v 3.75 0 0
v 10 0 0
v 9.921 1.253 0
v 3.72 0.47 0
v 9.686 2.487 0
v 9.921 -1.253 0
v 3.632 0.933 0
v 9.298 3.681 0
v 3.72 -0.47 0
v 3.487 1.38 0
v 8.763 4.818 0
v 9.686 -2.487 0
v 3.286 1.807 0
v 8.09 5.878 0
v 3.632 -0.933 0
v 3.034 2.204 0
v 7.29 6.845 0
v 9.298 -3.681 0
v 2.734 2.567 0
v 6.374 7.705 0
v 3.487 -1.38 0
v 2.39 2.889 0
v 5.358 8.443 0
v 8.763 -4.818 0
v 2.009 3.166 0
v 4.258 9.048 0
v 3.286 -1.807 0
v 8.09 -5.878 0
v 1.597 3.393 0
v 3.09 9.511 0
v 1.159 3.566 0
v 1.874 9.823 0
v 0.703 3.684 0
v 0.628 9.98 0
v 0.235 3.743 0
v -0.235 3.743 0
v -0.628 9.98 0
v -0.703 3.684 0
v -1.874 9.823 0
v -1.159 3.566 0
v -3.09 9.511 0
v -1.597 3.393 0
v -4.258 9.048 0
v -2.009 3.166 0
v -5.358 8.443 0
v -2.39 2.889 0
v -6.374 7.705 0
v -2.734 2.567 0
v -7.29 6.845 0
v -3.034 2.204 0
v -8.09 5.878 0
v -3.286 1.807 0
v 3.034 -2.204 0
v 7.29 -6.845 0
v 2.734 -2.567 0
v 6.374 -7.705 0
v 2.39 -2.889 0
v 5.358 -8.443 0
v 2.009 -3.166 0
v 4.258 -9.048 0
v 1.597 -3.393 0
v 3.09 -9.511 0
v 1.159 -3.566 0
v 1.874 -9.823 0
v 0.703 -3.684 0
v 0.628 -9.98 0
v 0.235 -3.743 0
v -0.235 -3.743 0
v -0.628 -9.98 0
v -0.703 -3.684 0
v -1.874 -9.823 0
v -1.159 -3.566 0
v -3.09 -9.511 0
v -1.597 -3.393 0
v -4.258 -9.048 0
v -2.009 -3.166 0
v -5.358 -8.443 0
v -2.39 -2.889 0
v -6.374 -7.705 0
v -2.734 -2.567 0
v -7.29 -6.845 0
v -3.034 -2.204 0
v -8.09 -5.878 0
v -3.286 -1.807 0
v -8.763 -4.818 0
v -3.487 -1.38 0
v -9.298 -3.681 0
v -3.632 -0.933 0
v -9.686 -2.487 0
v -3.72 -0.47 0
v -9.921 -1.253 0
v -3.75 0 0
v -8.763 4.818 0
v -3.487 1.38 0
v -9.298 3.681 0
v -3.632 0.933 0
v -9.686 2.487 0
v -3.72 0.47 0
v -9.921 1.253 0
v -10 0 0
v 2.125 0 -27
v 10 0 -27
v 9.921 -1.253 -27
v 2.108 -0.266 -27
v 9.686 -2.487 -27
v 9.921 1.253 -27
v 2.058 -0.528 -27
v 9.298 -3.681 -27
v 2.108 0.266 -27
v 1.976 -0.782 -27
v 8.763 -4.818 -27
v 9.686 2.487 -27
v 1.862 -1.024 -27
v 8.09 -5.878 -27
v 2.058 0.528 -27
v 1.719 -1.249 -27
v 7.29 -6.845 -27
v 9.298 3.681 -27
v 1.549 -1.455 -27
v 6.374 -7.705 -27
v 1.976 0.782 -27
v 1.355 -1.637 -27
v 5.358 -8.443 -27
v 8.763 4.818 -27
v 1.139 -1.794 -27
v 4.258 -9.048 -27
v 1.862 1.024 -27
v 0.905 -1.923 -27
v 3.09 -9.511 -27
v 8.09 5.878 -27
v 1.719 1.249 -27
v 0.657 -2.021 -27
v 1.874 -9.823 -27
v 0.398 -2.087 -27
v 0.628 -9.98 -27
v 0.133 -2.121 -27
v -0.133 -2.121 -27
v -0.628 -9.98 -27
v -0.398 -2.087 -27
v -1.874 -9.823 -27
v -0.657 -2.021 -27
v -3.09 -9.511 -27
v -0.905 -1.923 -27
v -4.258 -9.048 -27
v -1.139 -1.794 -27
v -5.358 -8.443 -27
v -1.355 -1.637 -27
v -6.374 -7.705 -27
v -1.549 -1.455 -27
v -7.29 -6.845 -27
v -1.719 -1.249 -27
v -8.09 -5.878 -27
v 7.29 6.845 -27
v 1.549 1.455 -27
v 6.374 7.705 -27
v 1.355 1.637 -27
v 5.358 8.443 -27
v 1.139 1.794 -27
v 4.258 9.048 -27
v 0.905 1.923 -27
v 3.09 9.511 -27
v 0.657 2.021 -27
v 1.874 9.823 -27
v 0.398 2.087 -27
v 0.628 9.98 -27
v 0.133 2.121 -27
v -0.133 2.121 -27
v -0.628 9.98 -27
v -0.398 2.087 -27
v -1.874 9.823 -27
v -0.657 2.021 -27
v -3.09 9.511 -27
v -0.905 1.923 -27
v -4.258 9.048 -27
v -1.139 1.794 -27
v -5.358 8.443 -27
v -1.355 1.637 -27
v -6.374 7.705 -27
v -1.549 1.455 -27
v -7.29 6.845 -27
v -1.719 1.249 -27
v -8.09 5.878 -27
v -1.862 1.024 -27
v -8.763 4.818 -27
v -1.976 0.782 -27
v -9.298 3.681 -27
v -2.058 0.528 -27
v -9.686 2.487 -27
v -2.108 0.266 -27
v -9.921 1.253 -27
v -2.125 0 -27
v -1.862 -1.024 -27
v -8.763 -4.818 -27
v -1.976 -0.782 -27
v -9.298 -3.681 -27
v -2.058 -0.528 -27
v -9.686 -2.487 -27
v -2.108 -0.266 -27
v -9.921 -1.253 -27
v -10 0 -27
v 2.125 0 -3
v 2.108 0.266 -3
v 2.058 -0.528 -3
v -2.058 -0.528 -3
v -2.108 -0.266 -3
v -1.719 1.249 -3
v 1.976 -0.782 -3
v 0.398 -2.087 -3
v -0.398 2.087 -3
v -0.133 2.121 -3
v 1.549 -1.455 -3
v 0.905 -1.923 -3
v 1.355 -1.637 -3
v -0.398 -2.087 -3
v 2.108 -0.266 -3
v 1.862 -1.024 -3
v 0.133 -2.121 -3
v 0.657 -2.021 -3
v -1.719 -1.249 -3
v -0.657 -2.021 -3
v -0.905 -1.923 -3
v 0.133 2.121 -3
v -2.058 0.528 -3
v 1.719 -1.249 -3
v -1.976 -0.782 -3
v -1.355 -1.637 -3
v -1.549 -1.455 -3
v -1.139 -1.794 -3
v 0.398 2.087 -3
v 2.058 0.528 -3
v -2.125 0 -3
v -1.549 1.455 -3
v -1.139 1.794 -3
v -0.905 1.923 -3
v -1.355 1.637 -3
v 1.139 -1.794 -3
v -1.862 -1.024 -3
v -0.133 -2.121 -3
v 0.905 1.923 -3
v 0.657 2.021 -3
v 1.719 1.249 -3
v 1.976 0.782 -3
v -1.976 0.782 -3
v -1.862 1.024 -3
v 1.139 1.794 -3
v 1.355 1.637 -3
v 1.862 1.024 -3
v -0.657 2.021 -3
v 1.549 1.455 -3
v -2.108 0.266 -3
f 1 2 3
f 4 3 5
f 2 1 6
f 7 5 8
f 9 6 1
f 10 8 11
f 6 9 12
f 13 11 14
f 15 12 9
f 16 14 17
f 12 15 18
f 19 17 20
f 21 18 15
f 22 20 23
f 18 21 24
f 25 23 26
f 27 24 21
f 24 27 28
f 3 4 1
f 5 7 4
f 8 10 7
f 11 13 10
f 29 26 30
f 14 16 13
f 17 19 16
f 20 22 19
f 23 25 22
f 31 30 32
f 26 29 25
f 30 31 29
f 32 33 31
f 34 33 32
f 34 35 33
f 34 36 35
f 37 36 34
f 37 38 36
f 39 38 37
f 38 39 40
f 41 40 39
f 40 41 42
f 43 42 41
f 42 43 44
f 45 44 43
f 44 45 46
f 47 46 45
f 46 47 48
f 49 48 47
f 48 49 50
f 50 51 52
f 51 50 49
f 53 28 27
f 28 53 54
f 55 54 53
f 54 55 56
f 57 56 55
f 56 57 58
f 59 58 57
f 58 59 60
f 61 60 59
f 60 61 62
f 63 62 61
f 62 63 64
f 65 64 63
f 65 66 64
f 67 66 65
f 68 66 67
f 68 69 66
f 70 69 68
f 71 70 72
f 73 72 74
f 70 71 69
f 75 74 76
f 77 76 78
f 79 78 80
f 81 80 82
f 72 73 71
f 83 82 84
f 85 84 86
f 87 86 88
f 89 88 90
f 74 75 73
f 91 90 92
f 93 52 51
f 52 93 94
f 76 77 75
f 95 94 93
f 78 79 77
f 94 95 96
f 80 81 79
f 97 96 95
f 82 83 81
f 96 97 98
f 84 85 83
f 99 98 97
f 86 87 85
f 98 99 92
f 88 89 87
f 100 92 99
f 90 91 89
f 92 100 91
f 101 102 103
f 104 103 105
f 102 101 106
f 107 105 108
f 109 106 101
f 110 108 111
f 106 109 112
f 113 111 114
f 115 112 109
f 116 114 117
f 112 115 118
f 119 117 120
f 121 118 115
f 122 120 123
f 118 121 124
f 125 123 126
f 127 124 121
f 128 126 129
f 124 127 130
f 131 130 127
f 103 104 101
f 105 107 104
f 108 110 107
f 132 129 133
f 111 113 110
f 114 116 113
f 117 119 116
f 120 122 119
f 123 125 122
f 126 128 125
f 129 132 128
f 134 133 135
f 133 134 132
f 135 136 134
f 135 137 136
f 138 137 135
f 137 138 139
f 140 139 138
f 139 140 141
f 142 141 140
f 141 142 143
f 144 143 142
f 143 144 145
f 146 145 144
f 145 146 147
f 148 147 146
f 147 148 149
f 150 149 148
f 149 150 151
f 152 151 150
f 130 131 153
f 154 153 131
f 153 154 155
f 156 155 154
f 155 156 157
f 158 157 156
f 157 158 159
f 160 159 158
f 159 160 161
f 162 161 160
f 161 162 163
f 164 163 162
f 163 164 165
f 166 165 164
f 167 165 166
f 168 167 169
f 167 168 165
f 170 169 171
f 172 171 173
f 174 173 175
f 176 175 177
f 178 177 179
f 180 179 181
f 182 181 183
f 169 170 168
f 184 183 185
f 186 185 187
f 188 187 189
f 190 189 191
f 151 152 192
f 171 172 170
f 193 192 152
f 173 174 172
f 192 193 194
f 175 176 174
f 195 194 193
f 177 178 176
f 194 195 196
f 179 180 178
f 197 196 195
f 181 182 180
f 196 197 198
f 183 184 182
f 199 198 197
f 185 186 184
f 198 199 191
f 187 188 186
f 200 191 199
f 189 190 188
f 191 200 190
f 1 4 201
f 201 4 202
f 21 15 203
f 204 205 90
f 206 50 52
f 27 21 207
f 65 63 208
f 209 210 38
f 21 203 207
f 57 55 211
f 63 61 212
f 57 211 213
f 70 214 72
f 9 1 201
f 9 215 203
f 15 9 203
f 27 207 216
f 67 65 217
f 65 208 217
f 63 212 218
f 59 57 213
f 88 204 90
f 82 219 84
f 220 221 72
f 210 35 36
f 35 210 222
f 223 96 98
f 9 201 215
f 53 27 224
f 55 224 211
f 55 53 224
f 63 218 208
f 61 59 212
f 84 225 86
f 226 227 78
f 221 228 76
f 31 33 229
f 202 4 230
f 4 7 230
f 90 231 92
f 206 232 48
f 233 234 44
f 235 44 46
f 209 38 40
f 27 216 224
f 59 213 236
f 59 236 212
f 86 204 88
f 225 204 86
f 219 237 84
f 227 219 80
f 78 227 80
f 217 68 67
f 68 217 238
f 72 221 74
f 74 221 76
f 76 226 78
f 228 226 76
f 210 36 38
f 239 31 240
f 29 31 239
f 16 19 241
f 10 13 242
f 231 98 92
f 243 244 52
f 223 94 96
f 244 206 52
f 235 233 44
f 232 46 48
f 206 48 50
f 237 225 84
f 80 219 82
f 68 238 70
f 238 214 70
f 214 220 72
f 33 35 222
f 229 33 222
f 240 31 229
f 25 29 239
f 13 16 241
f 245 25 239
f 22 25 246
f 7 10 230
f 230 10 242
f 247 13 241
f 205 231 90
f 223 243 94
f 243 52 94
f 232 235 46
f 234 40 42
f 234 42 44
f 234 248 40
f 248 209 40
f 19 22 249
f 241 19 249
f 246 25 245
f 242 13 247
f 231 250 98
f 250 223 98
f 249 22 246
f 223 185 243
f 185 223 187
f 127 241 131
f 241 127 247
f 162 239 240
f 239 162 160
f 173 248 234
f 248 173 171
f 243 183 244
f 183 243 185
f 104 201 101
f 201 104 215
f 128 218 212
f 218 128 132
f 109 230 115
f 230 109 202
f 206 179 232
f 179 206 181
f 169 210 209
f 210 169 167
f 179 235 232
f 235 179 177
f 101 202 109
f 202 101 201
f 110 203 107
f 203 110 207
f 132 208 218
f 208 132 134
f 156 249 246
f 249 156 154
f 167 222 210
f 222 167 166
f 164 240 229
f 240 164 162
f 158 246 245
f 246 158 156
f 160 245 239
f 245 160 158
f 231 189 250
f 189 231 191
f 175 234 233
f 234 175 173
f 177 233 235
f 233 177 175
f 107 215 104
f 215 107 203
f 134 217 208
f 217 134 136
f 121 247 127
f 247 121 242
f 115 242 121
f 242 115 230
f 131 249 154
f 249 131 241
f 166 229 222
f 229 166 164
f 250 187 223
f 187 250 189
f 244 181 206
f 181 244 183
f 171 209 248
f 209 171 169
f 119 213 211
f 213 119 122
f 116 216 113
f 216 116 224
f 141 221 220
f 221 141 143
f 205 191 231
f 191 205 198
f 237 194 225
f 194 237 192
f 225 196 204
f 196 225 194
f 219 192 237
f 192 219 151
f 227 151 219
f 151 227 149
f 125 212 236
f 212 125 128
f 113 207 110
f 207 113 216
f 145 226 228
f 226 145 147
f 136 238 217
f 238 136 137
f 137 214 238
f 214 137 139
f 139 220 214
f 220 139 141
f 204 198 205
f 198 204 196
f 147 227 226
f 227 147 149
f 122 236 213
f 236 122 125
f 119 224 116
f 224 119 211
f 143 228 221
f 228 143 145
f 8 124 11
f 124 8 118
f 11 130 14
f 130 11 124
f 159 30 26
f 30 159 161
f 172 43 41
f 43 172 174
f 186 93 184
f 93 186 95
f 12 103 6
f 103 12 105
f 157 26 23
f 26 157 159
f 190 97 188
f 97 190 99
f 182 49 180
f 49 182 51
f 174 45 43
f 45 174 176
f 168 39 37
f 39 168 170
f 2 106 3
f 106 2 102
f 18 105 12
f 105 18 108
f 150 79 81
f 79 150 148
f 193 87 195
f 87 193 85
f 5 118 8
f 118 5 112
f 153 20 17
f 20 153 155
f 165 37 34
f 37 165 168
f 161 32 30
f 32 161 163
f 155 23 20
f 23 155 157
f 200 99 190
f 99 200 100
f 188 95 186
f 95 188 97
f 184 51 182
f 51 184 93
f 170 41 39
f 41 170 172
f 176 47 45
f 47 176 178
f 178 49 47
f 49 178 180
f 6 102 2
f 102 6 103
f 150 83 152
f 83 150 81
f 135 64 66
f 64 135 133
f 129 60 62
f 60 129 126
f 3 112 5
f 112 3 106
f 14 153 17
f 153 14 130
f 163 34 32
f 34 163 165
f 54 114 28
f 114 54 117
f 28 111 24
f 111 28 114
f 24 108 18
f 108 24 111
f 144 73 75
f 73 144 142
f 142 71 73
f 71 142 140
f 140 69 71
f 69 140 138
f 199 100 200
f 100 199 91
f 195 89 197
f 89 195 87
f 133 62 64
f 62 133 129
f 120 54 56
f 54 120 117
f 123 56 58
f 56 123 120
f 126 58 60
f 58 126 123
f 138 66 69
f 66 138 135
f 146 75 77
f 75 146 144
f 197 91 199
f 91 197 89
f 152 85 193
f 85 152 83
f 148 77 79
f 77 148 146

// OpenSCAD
$fn = 50;


difference() {
	union() {
		translate(v = [0, 0, -27.0000000000]) {
			cylinder(h = 27, r = 10.0000000000);
		}
		cylinder(h = 0, r = 16.0000000000);
	}
	union() {
		translate(v = [0, 0, 0]) {
			rotate(a = [0, 0, 0]) {
				difference() {
					union() {
						#translate(v = [0, 0, -27.0000000000]) {
							cylinder(h = 27, r = 2.0000000000);
						}
						#translate(v = [0, 0, -3]) {
							cylinder(h = 3, r1 = 2.1250000000, r2 = 3.7500000000);
						}
						#translate(v = [0, 0, -27.0000000000]) {
							cylinder(h = 27, r = 2.1250000000);
						}
						#translate(v = [0, 0, -27.0000000000]) {
							cylinder(h = 27, r = 2.0000000000);
						}
					}
					union();
				}
			}
		}
	}
}
